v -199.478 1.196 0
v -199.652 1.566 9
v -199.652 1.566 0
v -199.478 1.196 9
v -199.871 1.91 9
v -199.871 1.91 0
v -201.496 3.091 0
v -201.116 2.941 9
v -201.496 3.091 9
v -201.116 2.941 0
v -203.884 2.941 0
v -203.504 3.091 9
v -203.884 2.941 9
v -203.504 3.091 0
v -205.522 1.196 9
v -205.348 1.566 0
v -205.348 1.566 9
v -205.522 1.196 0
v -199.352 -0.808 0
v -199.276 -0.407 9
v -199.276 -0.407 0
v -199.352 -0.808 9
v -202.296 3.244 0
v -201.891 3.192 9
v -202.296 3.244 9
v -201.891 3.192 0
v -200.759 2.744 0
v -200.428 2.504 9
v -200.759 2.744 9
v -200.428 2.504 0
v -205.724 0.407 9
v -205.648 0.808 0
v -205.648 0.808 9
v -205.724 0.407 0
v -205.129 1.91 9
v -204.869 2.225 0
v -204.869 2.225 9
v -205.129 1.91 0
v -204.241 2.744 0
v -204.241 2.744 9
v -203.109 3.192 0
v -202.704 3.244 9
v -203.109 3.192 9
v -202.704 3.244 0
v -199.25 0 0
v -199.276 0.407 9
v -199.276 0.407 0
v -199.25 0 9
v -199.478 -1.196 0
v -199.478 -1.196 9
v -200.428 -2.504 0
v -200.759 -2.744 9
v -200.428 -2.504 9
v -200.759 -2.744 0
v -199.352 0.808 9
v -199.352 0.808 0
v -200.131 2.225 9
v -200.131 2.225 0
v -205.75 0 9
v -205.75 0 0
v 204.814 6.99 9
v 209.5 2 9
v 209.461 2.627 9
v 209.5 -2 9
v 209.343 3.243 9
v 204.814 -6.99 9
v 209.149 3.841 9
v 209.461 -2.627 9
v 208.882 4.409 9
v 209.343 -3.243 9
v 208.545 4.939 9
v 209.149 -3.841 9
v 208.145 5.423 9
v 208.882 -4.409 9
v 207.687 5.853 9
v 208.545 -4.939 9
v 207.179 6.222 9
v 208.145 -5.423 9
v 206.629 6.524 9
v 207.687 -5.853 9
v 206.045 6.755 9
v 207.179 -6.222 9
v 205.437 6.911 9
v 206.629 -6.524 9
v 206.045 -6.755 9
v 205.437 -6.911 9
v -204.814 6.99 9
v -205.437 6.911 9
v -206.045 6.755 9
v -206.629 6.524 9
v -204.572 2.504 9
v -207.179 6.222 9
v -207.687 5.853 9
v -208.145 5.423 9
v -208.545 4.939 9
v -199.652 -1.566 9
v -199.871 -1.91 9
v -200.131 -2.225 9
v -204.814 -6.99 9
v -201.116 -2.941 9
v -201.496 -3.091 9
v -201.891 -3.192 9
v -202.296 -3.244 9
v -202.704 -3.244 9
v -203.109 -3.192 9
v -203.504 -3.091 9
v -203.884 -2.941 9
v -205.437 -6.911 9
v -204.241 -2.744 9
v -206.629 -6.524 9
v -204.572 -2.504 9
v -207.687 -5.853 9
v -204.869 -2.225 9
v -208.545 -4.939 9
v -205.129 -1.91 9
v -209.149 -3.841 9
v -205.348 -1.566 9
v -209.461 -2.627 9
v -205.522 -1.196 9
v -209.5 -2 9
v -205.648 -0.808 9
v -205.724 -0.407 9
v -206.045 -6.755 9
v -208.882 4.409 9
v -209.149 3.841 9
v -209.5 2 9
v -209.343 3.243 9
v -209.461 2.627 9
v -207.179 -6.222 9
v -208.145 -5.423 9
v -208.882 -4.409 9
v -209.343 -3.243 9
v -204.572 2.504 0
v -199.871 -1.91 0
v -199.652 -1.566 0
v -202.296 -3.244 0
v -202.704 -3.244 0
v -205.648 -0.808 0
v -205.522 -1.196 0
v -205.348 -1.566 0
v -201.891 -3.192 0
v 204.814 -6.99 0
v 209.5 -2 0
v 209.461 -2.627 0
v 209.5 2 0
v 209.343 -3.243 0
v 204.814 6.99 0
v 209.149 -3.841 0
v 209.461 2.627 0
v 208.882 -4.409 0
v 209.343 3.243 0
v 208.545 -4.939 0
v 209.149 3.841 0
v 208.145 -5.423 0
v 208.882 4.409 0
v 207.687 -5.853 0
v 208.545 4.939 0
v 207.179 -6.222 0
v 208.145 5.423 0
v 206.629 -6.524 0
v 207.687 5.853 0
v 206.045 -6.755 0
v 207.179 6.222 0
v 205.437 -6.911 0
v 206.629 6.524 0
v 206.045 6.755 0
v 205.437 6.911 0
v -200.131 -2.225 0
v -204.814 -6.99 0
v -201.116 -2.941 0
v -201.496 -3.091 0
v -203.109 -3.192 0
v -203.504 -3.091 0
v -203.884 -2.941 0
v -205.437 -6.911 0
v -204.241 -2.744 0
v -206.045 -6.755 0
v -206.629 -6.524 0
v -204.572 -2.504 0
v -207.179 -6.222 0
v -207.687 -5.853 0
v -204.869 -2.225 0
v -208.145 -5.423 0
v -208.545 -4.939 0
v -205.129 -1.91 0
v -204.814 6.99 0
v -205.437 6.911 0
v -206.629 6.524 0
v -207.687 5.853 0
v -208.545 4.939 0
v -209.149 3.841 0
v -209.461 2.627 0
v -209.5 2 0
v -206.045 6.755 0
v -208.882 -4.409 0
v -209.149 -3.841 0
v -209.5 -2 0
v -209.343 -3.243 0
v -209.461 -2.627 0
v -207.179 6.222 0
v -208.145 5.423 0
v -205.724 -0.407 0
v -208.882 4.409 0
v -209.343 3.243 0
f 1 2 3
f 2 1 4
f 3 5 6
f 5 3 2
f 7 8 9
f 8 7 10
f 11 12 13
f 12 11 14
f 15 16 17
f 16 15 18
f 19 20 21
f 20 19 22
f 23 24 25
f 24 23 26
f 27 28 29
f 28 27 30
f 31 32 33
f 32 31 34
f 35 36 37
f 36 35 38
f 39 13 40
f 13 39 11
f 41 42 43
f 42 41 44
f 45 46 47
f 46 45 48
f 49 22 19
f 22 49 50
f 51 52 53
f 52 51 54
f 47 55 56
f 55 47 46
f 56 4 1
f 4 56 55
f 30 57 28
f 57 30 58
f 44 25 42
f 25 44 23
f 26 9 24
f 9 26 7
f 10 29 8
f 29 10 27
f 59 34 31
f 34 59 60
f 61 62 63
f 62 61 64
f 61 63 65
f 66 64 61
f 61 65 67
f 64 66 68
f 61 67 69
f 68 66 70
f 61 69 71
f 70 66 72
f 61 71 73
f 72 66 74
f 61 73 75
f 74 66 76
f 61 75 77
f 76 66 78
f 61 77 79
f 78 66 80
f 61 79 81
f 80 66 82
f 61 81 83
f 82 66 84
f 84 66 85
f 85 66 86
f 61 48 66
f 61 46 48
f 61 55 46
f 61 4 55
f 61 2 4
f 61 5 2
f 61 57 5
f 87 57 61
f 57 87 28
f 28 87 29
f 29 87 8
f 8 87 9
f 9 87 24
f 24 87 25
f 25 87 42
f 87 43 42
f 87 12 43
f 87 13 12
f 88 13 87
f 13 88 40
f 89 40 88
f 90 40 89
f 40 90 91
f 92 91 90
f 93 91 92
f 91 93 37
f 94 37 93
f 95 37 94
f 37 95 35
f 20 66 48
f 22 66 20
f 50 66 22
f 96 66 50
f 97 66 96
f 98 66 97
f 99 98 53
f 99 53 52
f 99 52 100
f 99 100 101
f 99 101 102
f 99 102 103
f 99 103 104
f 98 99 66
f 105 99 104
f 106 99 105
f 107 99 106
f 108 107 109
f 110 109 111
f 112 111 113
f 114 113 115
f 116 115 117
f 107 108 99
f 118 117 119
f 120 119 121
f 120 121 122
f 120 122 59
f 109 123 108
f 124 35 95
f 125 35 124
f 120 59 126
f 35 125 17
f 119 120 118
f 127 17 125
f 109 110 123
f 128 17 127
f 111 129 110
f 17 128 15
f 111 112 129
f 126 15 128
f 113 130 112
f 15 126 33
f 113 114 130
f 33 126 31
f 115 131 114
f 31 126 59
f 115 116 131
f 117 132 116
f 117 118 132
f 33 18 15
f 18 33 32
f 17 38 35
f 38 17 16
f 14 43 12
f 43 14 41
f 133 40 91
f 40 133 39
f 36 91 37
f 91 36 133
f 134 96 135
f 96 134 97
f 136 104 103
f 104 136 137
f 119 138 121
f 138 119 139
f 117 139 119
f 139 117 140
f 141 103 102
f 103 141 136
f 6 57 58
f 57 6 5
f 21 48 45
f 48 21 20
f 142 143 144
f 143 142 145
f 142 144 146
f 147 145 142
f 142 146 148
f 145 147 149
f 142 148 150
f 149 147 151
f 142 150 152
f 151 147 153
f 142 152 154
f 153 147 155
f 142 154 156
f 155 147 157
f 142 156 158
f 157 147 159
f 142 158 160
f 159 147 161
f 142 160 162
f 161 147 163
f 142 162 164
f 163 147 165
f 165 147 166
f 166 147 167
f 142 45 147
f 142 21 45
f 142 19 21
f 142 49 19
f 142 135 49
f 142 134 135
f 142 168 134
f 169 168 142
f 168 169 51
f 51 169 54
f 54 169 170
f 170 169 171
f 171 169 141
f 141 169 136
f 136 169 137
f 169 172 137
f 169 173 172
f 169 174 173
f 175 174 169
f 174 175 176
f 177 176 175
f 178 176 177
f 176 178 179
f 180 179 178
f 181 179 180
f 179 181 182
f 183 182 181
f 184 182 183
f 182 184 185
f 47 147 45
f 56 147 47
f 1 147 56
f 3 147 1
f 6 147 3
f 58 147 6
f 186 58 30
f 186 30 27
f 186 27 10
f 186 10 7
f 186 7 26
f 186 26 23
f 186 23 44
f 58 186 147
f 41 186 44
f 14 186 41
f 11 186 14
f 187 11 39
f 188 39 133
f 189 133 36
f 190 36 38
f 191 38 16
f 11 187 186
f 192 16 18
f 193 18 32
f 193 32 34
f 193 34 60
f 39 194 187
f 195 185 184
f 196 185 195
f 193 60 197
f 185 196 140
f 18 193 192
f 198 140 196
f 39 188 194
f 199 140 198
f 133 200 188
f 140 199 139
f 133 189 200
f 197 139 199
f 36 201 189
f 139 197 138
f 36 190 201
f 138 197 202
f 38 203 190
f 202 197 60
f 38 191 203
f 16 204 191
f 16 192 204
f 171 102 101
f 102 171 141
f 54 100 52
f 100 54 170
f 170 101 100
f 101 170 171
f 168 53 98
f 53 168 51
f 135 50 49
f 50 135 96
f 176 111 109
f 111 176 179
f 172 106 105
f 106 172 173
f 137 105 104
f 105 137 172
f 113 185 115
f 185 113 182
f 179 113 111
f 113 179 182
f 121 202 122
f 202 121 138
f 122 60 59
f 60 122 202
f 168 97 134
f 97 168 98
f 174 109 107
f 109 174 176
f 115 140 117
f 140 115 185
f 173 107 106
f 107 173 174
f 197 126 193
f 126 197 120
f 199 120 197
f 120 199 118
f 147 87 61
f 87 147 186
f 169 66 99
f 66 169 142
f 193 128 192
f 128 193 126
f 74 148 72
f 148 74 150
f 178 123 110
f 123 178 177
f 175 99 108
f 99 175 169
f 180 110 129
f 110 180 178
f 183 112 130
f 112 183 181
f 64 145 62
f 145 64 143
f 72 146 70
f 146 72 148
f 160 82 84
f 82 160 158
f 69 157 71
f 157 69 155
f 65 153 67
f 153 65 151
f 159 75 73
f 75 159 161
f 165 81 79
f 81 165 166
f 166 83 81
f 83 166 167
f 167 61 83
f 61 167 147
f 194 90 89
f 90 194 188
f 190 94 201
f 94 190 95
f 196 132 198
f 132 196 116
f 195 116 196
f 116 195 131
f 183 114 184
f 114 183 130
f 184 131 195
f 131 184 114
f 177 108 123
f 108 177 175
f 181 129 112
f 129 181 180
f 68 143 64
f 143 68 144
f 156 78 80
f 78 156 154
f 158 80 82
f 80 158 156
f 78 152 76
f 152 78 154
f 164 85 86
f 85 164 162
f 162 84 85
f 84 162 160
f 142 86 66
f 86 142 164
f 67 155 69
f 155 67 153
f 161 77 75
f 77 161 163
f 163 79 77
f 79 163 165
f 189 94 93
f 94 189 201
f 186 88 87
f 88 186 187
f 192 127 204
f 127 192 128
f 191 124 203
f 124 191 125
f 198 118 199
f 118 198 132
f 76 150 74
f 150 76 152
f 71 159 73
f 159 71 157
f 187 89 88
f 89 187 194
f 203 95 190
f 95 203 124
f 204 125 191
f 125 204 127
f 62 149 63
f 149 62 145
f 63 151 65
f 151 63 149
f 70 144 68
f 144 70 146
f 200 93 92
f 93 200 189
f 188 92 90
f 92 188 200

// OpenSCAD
$fn = 50;


difference() {
	union() {
		hull() {
			translate(v = [-204.5000000000, 2.0000000000, 0]) {
				cylinder(h = 9, r = 5);
			}
			translate(v = [204.5000000000, 2.0000000000, 0]) {
				cylinder(h = 9, r = 5);
			}
			translate(v = [-204.5000000000, -2.0000000000, 0]) {
				cylinder(h = 9, r = 5);
			}
			translate(v = [204.5000000000, -2.0000000000, 0]) {
				cylinder(h = 9, r = 5);
			}
		}
	}
	union() {
		translate(v = [-202.5000000000, 0.0000000000, 0]) {
			cylinder(h = 9, r = 3.2500000000);
		}
		translate(v = [-202.5000000000, 0.0000000000, 0]) {
			cylinder(h = 9, r = 1.8000000000);
		}
		translate(v = [-202.5000000000, 0.0000000000, 0]) {
			cylinder(h = 9, r = 1.8000000000);
		}
		translate(v = [-202.5000000000, 0.0000000000, 0]) {
			cylinder(h = 9, r = 1.8000000000);
		}
	}
}
